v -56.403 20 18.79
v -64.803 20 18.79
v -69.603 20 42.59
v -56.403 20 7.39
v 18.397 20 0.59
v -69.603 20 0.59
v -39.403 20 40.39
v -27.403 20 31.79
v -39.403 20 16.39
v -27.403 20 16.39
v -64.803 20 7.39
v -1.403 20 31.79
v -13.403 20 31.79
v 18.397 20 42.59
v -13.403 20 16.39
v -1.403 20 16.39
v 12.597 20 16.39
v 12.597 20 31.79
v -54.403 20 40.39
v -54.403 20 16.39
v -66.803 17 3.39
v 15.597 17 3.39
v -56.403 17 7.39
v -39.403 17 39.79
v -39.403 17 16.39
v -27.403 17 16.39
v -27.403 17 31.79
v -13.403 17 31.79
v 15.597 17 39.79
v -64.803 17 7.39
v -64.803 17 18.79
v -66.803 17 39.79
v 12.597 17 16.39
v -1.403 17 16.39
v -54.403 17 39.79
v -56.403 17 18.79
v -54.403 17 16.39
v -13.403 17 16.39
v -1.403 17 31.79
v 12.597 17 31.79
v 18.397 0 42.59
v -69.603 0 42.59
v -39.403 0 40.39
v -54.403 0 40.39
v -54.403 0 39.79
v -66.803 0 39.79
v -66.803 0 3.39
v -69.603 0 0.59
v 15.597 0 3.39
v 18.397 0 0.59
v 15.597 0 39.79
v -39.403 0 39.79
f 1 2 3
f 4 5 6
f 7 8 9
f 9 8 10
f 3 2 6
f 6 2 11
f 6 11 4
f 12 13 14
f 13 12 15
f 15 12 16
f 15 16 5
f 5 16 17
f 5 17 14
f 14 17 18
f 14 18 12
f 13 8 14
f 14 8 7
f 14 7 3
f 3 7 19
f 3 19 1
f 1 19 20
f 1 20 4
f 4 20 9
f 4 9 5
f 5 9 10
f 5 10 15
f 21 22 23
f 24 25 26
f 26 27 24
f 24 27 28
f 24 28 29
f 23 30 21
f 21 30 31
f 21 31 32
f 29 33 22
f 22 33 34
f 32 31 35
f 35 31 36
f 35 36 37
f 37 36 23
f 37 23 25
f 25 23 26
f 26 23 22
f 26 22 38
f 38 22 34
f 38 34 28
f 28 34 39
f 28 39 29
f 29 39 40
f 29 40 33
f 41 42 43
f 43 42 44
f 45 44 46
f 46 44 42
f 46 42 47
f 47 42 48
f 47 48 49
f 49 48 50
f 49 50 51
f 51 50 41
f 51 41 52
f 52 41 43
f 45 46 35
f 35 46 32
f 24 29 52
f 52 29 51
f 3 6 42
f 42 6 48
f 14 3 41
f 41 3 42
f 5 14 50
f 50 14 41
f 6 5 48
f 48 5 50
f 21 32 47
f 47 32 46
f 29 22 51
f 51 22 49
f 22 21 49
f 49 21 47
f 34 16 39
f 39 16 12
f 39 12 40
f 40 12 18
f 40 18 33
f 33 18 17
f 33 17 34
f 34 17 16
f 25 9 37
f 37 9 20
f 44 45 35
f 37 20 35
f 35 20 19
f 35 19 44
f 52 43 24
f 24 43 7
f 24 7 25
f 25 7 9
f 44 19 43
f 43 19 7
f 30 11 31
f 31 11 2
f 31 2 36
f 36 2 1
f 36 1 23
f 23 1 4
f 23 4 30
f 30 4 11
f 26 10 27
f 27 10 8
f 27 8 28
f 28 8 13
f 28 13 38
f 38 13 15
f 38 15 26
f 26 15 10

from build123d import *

# Parameters (mm, degrees)
ESQUISSE1_W             = 88
ESQUISSE1_H             = 42
BOSS_EXTRU_1_DEPTH      = 20
ESQUISSE2_W             = 82.4
ESQUISSE2_H             = 36.4
ENL_V_MAT_EXTRU_1_DEPTH = 17
ESQUISSE3_W             = 14
ESQUISSE3_H             = 15.4
ESQUISSE3_W_2           = 15
ESQUISSE3_H_2           = 24
ESQUISSE3_W_3           = 8.4
ESQUISSE3_H_3           = 11.4
ENL_V_MAT_EXTRU_3_DEPTH = 53


with BuildPart() as part:
    # Esquisse1 → Boss.-Extru.1 (new body)
    with BuildSketch(Plane(origin=(0, 0, 0), x_dir=(1, 0, 0), z_dir=(0, 1, 0))):
        with Locations((-25.603062664, -21.590445487)):
            Rectangle(ESQUISSE1_W, ESQUISSE1_H)
    extrude(amount=BOSS_EXTRU_1_DEPTH)

    # Esquisse2 → Enlèv. mat.-Extru.1 (cut)
    with BuildSketch(Plane(origin=(0, 0, 0), x_dir=(1, 0, 0), z_dir=(0, 1, 0))):
        with Locations((-25.603062664, -21.590445487)):
            Rectangle(ESQUISSE2_W, ESQUISSE2_H)
    extrude(amount=ENL_V_MAT_EXTRU_1_DEPTH, mode=Mode.SUBTRACT)

    # Esquisse3 → Enlèv. mat.-Extru.3 (cut)
    with BuildSketch(Plane(origin=(0, 0, 0), x_dir=(1, 0, 0), z_dir=(0, 1, 0))):
        with Locations((5.596937336, -24.090445487)):
            Rectangle(ESQUISSE3_W, ESQUISSE3_H)
        with Locations((-20.403062664, -24.090445487)):
            Rectangle(ESQUISSE3_W, ESQUISSE3_H)
        with Locations((-46.903062664, -28.390445487)):
            Rectangle(ESQUISSE3_W_2, ESQUISSE3_H_2)
        with Locations((-60.603062664, -13.090445487)):
            Rectangle(ESQUISSE3_W_3, ESQUISSE3_H_3)
    extrude(amount=ENL_V_MAT_EXTRU_3_DEPTH, mode=Mode.SUBTRACT)


solid = part.part
